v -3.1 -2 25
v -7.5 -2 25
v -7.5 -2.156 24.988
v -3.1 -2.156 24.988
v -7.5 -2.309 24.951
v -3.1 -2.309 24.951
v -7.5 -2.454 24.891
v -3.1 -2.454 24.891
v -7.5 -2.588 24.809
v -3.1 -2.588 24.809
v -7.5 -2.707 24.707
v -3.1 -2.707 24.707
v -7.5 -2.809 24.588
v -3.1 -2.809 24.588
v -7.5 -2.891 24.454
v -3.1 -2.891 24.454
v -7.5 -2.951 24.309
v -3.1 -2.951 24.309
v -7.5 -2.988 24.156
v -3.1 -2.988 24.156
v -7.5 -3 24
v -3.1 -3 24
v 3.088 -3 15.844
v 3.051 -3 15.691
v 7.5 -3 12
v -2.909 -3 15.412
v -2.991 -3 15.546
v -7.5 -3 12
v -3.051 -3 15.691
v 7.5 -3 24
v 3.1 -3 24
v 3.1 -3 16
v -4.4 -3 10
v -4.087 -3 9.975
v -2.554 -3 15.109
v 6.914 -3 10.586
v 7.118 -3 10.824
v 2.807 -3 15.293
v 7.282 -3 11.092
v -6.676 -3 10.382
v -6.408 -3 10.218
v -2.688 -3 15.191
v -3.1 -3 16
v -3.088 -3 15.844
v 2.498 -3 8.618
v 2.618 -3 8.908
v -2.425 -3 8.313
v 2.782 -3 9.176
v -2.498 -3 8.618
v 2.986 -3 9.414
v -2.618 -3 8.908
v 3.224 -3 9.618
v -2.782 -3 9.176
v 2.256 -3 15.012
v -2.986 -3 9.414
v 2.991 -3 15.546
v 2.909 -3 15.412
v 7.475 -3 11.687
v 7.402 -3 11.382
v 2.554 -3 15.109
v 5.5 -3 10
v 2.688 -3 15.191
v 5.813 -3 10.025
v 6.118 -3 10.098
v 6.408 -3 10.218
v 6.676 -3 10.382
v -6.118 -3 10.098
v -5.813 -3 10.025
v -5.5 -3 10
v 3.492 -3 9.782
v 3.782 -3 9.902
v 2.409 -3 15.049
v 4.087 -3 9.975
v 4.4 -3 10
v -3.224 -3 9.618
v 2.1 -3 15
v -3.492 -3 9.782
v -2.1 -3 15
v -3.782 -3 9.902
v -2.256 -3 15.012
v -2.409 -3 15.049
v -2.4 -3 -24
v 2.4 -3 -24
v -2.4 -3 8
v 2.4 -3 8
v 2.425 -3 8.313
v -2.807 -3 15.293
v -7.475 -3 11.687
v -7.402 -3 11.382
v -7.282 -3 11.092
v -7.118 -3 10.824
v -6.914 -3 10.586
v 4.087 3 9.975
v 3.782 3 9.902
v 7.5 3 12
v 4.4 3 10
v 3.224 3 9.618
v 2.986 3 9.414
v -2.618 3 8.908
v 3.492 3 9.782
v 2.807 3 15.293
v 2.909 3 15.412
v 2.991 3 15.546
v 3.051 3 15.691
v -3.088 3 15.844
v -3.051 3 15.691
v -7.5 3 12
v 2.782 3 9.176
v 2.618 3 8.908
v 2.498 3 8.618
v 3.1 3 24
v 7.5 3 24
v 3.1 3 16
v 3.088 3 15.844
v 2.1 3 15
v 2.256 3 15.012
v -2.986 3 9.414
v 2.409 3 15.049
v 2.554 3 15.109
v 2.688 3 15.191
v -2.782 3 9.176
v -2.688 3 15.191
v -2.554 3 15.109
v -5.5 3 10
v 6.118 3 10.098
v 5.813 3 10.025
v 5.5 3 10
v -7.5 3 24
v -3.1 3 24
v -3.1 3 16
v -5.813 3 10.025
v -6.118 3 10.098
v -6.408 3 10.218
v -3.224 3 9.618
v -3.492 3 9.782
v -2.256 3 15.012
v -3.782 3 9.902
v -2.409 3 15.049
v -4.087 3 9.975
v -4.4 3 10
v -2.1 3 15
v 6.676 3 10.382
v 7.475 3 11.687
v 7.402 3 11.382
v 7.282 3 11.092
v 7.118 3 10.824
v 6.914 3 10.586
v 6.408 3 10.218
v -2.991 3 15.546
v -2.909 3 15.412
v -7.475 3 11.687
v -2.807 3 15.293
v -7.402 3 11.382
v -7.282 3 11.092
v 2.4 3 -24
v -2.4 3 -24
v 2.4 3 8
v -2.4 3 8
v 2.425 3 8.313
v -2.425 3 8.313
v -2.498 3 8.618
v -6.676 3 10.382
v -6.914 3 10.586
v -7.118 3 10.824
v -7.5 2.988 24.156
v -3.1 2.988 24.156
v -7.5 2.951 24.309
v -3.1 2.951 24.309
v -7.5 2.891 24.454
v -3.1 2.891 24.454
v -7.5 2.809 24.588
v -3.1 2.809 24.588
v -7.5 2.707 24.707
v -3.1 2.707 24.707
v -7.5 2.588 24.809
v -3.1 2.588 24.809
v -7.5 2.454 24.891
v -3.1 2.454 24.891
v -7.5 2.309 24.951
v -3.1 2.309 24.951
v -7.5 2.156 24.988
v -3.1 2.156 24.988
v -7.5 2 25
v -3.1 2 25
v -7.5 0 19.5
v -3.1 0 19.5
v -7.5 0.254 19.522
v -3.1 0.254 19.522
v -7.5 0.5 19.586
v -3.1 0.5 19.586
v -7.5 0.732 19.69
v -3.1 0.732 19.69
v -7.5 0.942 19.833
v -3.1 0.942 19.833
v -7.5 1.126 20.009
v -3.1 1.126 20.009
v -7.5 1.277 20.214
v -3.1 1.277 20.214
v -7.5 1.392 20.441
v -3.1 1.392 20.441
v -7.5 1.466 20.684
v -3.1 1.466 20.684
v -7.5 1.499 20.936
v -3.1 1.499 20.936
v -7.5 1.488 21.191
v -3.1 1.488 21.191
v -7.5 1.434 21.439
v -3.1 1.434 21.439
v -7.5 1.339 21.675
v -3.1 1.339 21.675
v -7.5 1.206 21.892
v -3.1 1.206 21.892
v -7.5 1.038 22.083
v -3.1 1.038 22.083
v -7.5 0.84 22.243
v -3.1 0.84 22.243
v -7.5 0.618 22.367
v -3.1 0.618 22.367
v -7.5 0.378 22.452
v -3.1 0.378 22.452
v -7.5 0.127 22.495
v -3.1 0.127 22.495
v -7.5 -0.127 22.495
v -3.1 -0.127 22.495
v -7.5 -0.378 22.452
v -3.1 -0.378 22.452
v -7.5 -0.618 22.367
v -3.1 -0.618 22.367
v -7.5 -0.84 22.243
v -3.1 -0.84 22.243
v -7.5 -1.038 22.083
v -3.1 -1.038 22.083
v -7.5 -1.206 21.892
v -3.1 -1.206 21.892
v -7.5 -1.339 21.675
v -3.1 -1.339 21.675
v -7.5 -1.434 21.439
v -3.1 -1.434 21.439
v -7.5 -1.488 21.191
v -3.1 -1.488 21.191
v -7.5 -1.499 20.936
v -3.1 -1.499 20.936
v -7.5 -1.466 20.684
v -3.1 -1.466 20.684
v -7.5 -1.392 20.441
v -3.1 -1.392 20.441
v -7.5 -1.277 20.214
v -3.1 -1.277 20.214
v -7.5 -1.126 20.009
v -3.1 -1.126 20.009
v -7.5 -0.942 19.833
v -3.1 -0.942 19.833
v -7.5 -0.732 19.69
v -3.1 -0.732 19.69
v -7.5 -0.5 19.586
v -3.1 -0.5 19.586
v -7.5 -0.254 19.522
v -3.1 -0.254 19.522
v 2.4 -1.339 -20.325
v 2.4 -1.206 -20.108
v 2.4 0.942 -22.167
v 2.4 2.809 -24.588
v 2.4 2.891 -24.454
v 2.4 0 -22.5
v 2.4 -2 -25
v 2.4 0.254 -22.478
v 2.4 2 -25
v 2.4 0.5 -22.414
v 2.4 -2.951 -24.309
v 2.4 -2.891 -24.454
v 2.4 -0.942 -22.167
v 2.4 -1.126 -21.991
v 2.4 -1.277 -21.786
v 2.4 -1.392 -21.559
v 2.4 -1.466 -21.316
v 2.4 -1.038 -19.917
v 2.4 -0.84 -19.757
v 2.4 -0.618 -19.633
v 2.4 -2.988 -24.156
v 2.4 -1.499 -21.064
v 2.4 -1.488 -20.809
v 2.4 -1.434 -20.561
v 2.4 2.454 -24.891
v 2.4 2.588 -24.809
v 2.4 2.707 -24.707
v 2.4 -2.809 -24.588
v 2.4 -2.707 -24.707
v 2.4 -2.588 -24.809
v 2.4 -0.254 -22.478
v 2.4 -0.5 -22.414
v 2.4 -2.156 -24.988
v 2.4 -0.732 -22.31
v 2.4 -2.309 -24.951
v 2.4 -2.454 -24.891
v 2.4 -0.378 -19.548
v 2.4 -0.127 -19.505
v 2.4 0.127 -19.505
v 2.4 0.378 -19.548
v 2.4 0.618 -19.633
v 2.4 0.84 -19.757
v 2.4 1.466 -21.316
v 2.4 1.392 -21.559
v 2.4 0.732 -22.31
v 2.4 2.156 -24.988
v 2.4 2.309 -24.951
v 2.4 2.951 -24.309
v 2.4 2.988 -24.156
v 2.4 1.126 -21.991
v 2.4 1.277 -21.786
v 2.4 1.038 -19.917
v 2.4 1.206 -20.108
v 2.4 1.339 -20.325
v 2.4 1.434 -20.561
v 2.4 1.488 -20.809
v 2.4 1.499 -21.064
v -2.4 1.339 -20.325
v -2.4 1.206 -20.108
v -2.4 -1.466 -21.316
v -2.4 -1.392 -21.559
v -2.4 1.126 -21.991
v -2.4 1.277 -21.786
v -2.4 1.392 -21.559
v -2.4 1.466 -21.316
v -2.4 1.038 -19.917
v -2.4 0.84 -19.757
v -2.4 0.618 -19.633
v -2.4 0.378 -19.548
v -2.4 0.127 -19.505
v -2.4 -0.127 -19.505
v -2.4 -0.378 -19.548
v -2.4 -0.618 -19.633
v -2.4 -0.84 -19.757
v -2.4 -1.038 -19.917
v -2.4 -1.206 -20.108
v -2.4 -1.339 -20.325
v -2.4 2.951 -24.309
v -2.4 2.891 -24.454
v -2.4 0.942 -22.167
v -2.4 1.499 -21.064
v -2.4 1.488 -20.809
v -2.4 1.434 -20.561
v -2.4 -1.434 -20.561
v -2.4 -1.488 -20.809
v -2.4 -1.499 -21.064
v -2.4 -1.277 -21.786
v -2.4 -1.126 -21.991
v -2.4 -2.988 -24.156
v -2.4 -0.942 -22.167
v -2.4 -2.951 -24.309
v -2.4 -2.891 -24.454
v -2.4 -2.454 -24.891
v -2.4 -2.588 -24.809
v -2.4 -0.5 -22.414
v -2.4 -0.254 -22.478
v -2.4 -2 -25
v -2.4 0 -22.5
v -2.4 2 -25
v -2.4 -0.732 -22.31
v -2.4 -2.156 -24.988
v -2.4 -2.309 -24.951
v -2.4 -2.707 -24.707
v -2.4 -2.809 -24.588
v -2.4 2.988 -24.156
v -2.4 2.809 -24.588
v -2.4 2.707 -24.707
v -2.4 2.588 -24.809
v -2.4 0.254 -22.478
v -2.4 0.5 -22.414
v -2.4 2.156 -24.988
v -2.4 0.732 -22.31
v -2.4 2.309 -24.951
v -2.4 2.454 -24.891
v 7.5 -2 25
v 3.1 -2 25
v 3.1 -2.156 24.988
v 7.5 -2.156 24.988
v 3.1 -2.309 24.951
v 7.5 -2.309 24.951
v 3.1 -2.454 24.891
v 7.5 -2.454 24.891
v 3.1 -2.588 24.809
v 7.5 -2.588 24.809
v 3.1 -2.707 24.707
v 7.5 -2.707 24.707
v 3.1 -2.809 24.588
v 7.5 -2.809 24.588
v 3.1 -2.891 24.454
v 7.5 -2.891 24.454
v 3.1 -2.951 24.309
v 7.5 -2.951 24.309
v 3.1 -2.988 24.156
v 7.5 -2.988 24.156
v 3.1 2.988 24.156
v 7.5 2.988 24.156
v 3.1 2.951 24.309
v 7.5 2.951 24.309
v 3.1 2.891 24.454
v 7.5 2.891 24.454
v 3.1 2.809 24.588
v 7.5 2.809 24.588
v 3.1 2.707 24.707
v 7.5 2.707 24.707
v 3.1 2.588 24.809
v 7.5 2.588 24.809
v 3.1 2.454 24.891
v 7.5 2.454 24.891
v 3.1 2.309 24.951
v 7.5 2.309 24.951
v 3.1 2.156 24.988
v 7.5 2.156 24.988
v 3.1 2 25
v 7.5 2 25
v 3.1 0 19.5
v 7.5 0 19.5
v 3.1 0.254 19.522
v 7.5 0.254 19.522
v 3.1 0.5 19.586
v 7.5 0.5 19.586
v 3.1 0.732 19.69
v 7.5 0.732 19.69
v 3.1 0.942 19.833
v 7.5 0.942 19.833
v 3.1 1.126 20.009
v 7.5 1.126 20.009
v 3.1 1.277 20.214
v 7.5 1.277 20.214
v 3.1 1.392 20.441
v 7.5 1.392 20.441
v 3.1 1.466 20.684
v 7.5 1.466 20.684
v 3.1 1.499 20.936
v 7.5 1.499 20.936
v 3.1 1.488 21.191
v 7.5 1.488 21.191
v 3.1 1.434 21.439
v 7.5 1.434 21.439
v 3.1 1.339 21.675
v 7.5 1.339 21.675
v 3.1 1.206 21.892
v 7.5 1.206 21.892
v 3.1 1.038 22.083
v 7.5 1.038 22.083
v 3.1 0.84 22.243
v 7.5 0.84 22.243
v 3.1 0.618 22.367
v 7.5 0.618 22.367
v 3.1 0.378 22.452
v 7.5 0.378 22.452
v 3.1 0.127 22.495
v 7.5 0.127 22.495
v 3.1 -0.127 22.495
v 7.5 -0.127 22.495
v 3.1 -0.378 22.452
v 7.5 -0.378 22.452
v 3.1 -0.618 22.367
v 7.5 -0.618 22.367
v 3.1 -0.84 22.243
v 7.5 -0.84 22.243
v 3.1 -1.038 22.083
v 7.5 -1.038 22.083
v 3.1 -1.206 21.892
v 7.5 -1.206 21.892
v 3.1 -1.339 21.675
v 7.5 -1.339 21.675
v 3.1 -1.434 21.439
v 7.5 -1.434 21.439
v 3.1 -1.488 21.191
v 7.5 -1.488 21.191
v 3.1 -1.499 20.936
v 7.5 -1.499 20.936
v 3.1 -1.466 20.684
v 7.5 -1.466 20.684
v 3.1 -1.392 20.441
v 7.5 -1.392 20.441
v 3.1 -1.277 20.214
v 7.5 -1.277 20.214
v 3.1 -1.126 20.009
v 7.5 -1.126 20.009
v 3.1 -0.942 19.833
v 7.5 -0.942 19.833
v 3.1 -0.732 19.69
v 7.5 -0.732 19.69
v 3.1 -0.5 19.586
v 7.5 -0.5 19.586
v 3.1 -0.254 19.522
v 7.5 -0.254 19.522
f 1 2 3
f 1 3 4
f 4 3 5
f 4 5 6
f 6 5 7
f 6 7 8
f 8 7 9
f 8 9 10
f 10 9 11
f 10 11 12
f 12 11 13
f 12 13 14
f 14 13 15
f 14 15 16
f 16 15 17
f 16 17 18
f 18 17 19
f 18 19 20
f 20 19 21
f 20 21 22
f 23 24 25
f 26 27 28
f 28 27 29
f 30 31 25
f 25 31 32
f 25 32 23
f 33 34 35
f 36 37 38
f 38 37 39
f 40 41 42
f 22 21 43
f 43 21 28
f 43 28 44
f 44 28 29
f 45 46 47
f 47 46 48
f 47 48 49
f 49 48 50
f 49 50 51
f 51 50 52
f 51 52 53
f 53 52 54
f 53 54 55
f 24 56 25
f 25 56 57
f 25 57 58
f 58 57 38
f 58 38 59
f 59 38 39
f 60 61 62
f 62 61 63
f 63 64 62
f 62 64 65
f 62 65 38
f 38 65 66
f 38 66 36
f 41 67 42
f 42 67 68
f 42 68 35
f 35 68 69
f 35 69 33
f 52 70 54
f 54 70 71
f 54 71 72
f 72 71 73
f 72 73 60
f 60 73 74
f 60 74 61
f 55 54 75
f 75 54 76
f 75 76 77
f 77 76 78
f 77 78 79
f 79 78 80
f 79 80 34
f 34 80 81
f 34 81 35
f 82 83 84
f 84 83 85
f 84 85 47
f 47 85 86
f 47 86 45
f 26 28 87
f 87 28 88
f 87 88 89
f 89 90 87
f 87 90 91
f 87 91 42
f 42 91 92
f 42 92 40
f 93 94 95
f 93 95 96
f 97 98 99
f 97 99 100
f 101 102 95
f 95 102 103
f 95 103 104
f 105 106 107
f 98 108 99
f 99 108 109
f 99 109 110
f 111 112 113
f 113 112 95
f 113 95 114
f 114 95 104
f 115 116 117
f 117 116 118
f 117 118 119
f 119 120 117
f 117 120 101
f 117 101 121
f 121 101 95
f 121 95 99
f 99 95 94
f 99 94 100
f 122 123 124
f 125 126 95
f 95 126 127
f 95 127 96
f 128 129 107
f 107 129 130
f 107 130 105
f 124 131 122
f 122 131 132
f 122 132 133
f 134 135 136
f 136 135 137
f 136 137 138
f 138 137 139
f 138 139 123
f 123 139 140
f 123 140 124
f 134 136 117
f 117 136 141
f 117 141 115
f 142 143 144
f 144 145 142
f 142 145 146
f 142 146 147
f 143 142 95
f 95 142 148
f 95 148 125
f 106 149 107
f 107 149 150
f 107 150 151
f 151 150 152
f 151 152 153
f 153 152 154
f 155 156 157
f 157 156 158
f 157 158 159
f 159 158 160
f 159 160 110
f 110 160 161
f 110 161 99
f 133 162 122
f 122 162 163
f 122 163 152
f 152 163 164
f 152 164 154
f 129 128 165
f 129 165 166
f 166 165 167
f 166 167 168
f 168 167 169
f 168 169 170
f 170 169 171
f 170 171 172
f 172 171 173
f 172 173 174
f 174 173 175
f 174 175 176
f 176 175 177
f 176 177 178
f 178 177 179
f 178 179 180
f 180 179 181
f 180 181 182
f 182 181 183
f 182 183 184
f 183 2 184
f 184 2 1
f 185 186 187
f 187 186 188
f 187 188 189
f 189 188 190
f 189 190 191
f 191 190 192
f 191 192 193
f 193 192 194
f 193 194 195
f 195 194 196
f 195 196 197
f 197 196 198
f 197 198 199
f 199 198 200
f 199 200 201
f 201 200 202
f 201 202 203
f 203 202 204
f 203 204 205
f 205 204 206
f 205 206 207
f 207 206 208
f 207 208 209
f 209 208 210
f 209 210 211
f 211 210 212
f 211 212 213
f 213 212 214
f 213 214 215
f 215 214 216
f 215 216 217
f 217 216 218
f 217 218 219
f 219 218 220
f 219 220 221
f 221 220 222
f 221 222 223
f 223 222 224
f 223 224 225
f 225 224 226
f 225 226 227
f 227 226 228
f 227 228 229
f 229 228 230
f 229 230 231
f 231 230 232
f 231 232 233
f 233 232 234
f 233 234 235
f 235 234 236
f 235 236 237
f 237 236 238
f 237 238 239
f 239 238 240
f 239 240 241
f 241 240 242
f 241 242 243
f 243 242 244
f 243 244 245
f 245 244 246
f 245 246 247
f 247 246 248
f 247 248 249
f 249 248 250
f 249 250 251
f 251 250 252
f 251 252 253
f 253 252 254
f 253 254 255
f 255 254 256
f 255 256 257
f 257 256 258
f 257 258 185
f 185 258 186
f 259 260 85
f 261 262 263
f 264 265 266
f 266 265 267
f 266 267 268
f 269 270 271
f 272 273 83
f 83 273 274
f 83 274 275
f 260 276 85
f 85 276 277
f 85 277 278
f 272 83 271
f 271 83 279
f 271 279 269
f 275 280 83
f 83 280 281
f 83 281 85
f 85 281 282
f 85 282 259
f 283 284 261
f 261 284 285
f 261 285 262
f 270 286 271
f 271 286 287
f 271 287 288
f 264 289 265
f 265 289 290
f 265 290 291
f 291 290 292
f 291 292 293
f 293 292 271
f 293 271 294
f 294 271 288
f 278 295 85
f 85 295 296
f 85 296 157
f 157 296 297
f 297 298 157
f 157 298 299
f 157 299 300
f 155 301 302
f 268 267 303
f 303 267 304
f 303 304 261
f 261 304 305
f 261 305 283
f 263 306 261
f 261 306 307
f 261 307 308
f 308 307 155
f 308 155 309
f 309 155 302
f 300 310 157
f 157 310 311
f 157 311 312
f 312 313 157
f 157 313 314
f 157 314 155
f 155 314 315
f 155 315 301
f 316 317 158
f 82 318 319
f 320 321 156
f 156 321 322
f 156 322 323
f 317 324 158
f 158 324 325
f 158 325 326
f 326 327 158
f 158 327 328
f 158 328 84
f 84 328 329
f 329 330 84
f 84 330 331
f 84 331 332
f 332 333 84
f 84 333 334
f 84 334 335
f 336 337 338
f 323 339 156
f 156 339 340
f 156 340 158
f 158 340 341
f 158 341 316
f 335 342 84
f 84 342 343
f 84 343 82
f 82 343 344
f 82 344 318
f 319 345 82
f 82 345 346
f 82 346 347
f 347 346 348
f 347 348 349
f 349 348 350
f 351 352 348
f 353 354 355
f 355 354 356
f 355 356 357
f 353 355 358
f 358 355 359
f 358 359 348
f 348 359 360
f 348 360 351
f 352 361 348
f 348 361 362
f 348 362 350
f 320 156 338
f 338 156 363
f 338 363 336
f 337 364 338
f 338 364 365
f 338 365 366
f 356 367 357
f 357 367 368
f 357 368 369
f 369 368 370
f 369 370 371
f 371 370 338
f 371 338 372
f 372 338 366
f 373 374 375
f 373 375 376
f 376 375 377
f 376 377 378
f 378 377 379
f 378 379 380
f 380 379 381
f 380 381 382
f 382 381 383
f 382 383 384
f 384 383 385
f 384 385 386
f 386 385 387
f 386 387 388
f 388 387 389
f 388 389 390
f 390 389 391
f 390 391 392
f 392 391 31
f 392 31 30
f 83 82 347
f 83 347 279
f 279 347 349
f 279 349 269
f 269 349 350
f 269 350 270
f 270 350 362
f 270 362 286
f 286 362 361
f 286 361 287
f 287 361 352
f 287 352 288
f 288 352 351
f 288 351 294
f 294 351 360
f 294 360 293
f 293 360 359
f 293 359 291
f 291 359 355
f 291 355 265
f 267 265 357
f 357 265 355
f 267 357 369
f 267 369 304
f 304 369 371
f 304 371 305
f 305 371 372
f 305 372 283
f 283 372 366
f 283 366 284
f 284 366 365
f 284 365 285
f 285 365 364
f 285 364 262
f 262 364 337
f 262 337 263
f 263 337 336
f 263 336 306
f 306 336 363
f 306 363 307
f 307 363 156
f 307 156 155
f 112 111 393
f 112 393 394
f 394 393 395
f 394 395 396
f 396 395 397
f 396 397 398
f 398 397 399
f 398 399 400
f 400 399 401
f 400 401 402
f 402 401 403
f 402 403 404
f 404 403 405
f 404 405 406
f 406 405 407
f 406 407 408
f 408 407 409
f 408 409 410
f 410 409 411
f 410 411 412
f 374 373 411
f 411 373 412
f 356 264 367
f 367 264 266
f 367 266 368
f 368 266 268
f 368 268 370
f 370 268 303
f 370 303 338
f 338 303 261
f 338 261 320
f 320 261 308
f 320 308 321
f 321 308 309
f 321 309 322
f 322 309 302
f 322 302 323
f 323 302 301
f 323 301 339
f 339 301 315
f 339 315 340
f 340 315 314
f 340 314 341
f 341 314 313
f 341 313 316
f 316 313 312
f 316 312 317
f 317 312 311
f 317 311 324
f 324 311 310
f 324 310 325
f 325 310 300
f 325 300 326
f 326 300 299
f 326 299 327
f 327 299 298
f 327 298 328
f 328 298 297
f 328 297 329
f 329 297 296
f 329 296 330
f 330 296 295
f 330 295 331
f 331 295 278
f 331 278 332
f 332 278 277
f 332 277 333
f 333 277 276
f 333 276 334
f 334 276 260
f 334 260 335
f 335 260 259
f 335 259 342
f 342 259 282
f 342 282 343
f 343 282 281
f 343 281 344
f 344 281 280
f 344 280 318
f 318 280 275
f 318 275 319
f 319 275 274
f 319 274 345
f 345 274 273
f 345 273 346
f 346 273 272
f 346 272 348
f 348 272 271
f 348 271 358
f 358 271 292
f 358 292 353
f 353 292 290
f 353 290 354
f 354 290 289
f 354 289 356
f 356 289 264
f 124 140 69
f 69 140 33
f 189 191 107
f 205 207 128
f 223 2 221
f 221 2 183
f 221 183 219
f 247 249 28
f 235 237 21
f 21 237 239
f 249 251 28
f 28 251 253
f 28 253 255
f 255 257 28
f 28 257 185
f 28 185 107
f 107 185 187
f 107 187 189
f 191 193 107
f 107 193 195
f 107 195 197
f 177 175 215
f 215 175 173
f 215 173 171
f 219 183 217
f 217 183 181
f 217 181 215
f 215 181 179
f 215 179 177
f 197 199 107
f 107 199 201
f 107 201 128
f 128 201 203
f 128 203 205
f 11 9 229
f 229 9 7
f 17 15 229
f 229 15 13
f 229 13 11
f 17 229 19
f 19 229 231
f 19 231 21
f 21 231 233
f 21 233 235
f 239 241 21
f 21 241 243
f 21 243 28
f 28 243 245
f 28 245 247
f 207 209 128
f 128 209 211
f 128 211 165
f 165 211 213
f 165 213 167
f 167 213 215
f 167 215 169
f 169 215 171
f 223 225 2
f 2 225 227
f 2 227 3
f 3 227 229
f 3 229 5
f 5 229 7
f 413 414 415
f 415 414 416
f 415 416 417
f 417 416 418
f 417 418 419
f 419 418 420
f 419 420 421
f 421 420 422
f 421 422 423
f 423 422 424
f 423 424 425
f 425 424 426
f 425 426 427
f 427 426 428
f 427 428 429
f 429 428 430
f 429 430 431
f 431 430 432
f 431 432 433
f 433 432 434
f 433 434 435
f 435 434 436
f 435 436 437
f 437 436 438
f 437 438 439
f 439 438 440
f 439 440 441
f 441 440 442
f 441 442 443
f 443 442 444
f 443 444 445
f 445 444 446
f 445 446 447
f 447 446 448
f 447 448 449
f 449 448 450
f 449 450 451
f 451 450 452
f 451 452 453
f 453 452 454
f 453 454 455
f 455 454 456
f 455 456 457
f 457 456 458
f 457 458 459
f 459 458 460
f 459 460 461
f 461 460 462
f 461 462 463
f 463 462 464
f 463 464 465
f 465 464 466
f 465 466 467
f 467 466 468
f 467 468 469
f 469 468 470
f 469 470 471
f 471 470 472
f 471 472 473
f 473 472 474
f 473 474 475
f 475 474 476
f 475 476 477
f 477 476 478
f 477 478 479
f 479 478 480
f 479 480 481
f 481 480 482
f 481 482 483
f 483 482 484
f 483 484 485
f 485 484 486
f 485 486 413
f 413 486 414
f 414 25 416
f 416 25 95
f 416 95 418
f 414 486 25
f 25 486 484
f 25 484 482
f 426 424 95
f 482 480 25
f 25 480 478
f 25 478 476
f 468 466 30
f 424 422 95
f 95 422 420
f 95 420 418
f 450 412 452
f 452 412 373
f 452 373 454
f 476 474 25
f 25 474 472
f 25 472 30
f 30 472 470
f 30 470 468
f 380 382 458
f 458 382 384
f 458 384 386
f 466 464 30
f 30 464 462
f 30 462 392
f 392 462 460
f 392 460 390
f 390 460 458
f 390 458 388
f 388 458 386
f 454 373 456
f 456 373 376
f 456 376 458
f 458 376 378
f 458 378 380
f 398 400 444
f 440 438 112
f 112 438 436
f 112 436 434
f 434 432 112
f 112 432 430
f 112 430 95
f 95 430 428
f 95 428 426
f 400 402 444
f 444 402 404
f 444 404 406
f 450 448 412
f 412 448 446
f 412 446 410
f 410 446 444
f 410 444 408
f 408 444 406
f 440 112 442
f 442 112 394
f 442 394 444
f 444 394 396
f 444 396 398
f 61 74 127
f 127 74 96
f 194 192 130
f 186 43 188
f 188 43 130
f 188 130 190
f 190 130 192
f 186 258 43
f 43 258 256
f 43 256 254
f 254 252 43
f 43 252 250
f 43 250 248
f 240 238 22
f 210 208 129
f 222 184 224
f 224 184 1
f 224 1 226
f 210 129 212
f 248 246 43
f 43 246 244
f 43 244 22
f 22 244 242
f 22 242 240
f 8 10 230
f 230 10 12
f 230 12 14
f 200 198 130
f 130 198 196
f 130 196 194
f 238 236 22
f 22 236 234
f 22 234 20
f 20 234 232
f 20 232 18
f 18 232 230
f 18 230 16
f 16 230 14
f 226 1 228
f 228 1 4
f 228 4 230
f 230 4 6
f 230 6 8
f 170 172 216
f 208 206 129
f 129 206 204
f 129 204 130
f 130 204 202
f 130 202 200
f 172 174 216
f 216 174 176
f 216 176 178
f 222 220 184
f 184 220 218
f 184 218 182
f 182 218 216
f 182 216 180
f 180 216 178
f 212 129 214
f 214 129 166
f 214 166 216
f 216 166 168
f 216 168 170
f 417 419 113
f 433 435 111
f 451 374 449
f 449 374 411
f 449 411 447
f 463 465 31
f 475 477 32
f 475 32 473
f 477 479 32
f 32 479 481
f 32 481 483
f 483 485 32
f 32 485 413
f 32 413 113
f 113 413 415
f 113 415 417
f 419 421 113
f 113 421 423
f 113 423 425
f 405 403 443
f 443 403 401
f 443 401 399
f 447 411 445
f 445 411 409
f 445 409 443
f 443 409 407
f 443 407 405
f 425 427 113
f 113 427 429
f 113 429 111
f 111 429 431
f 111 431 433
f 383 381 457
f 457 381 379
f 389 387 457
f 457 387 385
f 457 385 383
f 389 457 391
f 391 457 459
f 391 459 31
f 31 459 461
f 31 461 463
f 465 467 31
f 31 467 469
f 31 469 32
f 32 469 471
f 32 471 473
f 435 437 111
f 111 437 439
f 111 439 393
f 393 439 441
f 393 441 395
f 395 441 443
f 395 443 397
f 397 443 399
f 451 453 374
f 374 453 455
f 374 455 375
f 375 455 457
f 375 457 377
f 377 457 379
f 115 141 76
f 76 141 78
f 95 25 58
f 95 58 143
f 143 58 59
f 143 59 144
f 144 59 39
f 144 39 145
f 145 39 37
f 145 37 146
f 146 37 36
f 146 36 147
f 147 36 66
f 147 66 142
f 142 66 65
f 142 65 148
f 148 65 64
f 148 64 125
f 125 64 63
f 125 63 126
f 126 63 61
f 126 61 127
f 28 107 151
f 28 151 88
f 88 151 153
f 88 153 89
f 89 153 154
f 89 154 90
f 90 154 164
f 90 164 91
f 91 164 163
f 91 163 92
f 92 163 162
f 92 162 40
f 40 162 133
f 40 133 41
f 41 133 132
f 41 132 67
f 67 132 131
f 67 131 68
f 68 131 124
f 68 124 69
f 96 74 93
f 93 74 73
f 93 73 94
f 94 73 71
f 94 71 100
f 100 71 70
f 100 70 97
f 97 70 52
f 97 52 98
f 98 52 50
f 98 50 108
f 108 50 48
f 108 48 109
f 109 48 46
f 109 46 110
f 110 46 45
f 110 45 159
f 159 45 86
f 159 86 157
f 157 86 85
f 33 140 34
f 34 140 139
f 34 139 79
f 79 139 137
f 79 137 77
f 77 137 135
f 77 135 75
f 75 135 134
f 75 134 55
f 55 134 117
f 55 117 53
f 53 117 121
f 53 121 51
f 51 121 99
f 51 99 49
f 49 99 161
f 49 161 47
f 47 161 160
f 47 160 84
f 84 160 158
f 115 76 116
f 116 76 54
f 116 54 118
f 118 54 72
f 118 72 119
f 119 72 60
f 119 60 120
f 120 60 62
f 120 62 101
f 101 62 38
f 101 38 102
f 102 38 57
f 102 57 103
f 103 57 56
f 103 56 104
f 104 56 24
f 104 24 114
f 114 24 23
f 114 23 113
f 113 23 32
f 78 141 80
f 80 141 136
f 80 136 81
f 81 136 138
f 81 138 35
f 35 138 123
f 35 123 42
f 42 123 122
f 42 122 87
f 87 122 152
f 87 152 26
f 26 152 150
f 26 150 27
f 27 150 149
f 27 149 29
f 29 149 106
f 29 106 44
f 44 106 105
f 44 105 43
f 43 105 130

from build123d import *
from build123d.topology import SkipClean

# Parameters (mm, degrees)
SALIENTE_EXTRUIR1_DEPTH    = 2.4
CORTAR_EXTRUIR1_DEPTH      = 26.29347742
CORTAR_EXTRUIR1_DEPTH_BACK = 26.29347742
CROQUIS2_R                 = 1.5
CROQUIS3_R                 = 1.5
SALIENTE_EXTRUIR2_DEPTH    = 7.5
CORTAR_EXTRUIR2_DEPTH      = 3.1
REDONDEO1_R                = 2
REDONDEO2_R                = 1


with BuildPart() as part:
    # Croquis1 → Saliente-Extruir1 (new, symmetric)
    with BuildSketch(Plane(origin=(0, 0, 0), x_dir=(0, 0, -1), z_dir=(1, 0, 0))):
        with BuildLine():
            Line((-24, 3), (24, 3))
            ThreePointArc((24, 3), (24.707106781, 2.707106781), (25, 2))
            Line((25, 2), (25, -2))
            ThreePointArc((25, -2), (24.707106781, -2.707106781), (24, -3))
            Line((24, -3), (-24, -3))
            ThreePointArc((-24, -3), (-24.707106781, -2.707106781), (-25, -2))
            Line((-25, -2), (-25, 2))
            ThreePointArc((-25, 2), (-24.707106781, 2.707106781), (-24, 3))
        make_face()
    extrude(amount=SALIENTE_EXTRUIR1_DEPTH, both=True)

    # Croquis2 → Cortar-Extruir1 (cut, two sides: drawn at the far end of the back side and taken through both)
    with BuildSketch(Plane(origin=(0, 0, 0), x_dir=(0, 0, -1), z_dir=(1, 0, 0)).offset(-CORTAR_EXTRUIR1_DEPTH_BACK)):
        with Locations((-21, 0)):
            Circle(CROQUIS2_R)
        with Locations((21, 0)):
            Circle(CROQUIS2_R)
    extrude(amount=CORTAR_EXTRUIR1_DEPTH + CORTAR_EXTRUIR1_DEPTH_BACK, mode=Mode.SUBTRACT)

    # Croquis3 → Saliente-Extruir2 (add, symmetric)
    with SkipClean():  # the faces are left unmerged after this step: merging them gives an invalid solid
        with BuildSketch(Plane(origin=(0, 0, 0), x_dir=(0, 0, -1), z_dir=(1, 0, 0))):
            with BuildLine():
                Line((-25, 2), (-25, -2))
                ThreePointArc((-25, -2), (-24.707106781, -2.707106781), (-24, -3))
                Line((-24, -3), (-10, -3))
                Line((-10, -3), (-10, 3))
                Line((-10, 3), (-24, 3))
                ThreePointArc((-24, 3), (-24.707106781, 2.707106781), (-25, 2))
            make_face()
            with Locations((-21, 0)):
                Circle(CROQUIS3_R, mode=Mode.SUBTRACT)
        extrude(amount=SALIENTE_EXTRUIR2_DEPTH, both=True)
    add(part.part.scale(1), mode=Mode.REPLACE)  # the faces are merged on a copy

    # Croquis4 → Cortar-Extruir2 (cut, symmetric)
    with BuildSketch(Plane(origin=(0, 0, 0), x_dir=(0, 0, -1), z_dir=(1, 0, 0))):
        with BuildLine():
            Line((-24, 3), (-15, 3))
            Line((-15, 3), (-15, -3))
            Line((-15, -3), (-24, -3))
            ThreePointArc((-24, -3), (-24.707106781, -2.707106781), (-25, -2))
            Line((-25, -2), (-25, 2))
            ThreePointArc((-25, 2), (-24.707106781, 2.707106781), (-24, 3))
        make_face()
    extrude(amount=CORTAR_EXTRUIR2_DEPTH, both=True, mode=Mode.SUBTRACT)

    # Redondeo1
    redondeo1_edges = [part.edges().sort_by_distance(p)[0] for p in [
        (-2.4, 0, 10),
        (2.4, 0, 10),
        (-7.5, 0, 10),
        (7.5, 0, 10),
    ]]
    fillet(redondeo1_edges, radius=REDONDEO1_R)

    # Redondeo2
    redondeo2_edges = [part.edges().sort_by_distance(p)[0] for p in [
        (3.1, 0, 15),
        (-3.1, 0, 15),
    ]]
    fillet(redondeo2_edges, radius=REDONDEO2_R)


solid = part.part
